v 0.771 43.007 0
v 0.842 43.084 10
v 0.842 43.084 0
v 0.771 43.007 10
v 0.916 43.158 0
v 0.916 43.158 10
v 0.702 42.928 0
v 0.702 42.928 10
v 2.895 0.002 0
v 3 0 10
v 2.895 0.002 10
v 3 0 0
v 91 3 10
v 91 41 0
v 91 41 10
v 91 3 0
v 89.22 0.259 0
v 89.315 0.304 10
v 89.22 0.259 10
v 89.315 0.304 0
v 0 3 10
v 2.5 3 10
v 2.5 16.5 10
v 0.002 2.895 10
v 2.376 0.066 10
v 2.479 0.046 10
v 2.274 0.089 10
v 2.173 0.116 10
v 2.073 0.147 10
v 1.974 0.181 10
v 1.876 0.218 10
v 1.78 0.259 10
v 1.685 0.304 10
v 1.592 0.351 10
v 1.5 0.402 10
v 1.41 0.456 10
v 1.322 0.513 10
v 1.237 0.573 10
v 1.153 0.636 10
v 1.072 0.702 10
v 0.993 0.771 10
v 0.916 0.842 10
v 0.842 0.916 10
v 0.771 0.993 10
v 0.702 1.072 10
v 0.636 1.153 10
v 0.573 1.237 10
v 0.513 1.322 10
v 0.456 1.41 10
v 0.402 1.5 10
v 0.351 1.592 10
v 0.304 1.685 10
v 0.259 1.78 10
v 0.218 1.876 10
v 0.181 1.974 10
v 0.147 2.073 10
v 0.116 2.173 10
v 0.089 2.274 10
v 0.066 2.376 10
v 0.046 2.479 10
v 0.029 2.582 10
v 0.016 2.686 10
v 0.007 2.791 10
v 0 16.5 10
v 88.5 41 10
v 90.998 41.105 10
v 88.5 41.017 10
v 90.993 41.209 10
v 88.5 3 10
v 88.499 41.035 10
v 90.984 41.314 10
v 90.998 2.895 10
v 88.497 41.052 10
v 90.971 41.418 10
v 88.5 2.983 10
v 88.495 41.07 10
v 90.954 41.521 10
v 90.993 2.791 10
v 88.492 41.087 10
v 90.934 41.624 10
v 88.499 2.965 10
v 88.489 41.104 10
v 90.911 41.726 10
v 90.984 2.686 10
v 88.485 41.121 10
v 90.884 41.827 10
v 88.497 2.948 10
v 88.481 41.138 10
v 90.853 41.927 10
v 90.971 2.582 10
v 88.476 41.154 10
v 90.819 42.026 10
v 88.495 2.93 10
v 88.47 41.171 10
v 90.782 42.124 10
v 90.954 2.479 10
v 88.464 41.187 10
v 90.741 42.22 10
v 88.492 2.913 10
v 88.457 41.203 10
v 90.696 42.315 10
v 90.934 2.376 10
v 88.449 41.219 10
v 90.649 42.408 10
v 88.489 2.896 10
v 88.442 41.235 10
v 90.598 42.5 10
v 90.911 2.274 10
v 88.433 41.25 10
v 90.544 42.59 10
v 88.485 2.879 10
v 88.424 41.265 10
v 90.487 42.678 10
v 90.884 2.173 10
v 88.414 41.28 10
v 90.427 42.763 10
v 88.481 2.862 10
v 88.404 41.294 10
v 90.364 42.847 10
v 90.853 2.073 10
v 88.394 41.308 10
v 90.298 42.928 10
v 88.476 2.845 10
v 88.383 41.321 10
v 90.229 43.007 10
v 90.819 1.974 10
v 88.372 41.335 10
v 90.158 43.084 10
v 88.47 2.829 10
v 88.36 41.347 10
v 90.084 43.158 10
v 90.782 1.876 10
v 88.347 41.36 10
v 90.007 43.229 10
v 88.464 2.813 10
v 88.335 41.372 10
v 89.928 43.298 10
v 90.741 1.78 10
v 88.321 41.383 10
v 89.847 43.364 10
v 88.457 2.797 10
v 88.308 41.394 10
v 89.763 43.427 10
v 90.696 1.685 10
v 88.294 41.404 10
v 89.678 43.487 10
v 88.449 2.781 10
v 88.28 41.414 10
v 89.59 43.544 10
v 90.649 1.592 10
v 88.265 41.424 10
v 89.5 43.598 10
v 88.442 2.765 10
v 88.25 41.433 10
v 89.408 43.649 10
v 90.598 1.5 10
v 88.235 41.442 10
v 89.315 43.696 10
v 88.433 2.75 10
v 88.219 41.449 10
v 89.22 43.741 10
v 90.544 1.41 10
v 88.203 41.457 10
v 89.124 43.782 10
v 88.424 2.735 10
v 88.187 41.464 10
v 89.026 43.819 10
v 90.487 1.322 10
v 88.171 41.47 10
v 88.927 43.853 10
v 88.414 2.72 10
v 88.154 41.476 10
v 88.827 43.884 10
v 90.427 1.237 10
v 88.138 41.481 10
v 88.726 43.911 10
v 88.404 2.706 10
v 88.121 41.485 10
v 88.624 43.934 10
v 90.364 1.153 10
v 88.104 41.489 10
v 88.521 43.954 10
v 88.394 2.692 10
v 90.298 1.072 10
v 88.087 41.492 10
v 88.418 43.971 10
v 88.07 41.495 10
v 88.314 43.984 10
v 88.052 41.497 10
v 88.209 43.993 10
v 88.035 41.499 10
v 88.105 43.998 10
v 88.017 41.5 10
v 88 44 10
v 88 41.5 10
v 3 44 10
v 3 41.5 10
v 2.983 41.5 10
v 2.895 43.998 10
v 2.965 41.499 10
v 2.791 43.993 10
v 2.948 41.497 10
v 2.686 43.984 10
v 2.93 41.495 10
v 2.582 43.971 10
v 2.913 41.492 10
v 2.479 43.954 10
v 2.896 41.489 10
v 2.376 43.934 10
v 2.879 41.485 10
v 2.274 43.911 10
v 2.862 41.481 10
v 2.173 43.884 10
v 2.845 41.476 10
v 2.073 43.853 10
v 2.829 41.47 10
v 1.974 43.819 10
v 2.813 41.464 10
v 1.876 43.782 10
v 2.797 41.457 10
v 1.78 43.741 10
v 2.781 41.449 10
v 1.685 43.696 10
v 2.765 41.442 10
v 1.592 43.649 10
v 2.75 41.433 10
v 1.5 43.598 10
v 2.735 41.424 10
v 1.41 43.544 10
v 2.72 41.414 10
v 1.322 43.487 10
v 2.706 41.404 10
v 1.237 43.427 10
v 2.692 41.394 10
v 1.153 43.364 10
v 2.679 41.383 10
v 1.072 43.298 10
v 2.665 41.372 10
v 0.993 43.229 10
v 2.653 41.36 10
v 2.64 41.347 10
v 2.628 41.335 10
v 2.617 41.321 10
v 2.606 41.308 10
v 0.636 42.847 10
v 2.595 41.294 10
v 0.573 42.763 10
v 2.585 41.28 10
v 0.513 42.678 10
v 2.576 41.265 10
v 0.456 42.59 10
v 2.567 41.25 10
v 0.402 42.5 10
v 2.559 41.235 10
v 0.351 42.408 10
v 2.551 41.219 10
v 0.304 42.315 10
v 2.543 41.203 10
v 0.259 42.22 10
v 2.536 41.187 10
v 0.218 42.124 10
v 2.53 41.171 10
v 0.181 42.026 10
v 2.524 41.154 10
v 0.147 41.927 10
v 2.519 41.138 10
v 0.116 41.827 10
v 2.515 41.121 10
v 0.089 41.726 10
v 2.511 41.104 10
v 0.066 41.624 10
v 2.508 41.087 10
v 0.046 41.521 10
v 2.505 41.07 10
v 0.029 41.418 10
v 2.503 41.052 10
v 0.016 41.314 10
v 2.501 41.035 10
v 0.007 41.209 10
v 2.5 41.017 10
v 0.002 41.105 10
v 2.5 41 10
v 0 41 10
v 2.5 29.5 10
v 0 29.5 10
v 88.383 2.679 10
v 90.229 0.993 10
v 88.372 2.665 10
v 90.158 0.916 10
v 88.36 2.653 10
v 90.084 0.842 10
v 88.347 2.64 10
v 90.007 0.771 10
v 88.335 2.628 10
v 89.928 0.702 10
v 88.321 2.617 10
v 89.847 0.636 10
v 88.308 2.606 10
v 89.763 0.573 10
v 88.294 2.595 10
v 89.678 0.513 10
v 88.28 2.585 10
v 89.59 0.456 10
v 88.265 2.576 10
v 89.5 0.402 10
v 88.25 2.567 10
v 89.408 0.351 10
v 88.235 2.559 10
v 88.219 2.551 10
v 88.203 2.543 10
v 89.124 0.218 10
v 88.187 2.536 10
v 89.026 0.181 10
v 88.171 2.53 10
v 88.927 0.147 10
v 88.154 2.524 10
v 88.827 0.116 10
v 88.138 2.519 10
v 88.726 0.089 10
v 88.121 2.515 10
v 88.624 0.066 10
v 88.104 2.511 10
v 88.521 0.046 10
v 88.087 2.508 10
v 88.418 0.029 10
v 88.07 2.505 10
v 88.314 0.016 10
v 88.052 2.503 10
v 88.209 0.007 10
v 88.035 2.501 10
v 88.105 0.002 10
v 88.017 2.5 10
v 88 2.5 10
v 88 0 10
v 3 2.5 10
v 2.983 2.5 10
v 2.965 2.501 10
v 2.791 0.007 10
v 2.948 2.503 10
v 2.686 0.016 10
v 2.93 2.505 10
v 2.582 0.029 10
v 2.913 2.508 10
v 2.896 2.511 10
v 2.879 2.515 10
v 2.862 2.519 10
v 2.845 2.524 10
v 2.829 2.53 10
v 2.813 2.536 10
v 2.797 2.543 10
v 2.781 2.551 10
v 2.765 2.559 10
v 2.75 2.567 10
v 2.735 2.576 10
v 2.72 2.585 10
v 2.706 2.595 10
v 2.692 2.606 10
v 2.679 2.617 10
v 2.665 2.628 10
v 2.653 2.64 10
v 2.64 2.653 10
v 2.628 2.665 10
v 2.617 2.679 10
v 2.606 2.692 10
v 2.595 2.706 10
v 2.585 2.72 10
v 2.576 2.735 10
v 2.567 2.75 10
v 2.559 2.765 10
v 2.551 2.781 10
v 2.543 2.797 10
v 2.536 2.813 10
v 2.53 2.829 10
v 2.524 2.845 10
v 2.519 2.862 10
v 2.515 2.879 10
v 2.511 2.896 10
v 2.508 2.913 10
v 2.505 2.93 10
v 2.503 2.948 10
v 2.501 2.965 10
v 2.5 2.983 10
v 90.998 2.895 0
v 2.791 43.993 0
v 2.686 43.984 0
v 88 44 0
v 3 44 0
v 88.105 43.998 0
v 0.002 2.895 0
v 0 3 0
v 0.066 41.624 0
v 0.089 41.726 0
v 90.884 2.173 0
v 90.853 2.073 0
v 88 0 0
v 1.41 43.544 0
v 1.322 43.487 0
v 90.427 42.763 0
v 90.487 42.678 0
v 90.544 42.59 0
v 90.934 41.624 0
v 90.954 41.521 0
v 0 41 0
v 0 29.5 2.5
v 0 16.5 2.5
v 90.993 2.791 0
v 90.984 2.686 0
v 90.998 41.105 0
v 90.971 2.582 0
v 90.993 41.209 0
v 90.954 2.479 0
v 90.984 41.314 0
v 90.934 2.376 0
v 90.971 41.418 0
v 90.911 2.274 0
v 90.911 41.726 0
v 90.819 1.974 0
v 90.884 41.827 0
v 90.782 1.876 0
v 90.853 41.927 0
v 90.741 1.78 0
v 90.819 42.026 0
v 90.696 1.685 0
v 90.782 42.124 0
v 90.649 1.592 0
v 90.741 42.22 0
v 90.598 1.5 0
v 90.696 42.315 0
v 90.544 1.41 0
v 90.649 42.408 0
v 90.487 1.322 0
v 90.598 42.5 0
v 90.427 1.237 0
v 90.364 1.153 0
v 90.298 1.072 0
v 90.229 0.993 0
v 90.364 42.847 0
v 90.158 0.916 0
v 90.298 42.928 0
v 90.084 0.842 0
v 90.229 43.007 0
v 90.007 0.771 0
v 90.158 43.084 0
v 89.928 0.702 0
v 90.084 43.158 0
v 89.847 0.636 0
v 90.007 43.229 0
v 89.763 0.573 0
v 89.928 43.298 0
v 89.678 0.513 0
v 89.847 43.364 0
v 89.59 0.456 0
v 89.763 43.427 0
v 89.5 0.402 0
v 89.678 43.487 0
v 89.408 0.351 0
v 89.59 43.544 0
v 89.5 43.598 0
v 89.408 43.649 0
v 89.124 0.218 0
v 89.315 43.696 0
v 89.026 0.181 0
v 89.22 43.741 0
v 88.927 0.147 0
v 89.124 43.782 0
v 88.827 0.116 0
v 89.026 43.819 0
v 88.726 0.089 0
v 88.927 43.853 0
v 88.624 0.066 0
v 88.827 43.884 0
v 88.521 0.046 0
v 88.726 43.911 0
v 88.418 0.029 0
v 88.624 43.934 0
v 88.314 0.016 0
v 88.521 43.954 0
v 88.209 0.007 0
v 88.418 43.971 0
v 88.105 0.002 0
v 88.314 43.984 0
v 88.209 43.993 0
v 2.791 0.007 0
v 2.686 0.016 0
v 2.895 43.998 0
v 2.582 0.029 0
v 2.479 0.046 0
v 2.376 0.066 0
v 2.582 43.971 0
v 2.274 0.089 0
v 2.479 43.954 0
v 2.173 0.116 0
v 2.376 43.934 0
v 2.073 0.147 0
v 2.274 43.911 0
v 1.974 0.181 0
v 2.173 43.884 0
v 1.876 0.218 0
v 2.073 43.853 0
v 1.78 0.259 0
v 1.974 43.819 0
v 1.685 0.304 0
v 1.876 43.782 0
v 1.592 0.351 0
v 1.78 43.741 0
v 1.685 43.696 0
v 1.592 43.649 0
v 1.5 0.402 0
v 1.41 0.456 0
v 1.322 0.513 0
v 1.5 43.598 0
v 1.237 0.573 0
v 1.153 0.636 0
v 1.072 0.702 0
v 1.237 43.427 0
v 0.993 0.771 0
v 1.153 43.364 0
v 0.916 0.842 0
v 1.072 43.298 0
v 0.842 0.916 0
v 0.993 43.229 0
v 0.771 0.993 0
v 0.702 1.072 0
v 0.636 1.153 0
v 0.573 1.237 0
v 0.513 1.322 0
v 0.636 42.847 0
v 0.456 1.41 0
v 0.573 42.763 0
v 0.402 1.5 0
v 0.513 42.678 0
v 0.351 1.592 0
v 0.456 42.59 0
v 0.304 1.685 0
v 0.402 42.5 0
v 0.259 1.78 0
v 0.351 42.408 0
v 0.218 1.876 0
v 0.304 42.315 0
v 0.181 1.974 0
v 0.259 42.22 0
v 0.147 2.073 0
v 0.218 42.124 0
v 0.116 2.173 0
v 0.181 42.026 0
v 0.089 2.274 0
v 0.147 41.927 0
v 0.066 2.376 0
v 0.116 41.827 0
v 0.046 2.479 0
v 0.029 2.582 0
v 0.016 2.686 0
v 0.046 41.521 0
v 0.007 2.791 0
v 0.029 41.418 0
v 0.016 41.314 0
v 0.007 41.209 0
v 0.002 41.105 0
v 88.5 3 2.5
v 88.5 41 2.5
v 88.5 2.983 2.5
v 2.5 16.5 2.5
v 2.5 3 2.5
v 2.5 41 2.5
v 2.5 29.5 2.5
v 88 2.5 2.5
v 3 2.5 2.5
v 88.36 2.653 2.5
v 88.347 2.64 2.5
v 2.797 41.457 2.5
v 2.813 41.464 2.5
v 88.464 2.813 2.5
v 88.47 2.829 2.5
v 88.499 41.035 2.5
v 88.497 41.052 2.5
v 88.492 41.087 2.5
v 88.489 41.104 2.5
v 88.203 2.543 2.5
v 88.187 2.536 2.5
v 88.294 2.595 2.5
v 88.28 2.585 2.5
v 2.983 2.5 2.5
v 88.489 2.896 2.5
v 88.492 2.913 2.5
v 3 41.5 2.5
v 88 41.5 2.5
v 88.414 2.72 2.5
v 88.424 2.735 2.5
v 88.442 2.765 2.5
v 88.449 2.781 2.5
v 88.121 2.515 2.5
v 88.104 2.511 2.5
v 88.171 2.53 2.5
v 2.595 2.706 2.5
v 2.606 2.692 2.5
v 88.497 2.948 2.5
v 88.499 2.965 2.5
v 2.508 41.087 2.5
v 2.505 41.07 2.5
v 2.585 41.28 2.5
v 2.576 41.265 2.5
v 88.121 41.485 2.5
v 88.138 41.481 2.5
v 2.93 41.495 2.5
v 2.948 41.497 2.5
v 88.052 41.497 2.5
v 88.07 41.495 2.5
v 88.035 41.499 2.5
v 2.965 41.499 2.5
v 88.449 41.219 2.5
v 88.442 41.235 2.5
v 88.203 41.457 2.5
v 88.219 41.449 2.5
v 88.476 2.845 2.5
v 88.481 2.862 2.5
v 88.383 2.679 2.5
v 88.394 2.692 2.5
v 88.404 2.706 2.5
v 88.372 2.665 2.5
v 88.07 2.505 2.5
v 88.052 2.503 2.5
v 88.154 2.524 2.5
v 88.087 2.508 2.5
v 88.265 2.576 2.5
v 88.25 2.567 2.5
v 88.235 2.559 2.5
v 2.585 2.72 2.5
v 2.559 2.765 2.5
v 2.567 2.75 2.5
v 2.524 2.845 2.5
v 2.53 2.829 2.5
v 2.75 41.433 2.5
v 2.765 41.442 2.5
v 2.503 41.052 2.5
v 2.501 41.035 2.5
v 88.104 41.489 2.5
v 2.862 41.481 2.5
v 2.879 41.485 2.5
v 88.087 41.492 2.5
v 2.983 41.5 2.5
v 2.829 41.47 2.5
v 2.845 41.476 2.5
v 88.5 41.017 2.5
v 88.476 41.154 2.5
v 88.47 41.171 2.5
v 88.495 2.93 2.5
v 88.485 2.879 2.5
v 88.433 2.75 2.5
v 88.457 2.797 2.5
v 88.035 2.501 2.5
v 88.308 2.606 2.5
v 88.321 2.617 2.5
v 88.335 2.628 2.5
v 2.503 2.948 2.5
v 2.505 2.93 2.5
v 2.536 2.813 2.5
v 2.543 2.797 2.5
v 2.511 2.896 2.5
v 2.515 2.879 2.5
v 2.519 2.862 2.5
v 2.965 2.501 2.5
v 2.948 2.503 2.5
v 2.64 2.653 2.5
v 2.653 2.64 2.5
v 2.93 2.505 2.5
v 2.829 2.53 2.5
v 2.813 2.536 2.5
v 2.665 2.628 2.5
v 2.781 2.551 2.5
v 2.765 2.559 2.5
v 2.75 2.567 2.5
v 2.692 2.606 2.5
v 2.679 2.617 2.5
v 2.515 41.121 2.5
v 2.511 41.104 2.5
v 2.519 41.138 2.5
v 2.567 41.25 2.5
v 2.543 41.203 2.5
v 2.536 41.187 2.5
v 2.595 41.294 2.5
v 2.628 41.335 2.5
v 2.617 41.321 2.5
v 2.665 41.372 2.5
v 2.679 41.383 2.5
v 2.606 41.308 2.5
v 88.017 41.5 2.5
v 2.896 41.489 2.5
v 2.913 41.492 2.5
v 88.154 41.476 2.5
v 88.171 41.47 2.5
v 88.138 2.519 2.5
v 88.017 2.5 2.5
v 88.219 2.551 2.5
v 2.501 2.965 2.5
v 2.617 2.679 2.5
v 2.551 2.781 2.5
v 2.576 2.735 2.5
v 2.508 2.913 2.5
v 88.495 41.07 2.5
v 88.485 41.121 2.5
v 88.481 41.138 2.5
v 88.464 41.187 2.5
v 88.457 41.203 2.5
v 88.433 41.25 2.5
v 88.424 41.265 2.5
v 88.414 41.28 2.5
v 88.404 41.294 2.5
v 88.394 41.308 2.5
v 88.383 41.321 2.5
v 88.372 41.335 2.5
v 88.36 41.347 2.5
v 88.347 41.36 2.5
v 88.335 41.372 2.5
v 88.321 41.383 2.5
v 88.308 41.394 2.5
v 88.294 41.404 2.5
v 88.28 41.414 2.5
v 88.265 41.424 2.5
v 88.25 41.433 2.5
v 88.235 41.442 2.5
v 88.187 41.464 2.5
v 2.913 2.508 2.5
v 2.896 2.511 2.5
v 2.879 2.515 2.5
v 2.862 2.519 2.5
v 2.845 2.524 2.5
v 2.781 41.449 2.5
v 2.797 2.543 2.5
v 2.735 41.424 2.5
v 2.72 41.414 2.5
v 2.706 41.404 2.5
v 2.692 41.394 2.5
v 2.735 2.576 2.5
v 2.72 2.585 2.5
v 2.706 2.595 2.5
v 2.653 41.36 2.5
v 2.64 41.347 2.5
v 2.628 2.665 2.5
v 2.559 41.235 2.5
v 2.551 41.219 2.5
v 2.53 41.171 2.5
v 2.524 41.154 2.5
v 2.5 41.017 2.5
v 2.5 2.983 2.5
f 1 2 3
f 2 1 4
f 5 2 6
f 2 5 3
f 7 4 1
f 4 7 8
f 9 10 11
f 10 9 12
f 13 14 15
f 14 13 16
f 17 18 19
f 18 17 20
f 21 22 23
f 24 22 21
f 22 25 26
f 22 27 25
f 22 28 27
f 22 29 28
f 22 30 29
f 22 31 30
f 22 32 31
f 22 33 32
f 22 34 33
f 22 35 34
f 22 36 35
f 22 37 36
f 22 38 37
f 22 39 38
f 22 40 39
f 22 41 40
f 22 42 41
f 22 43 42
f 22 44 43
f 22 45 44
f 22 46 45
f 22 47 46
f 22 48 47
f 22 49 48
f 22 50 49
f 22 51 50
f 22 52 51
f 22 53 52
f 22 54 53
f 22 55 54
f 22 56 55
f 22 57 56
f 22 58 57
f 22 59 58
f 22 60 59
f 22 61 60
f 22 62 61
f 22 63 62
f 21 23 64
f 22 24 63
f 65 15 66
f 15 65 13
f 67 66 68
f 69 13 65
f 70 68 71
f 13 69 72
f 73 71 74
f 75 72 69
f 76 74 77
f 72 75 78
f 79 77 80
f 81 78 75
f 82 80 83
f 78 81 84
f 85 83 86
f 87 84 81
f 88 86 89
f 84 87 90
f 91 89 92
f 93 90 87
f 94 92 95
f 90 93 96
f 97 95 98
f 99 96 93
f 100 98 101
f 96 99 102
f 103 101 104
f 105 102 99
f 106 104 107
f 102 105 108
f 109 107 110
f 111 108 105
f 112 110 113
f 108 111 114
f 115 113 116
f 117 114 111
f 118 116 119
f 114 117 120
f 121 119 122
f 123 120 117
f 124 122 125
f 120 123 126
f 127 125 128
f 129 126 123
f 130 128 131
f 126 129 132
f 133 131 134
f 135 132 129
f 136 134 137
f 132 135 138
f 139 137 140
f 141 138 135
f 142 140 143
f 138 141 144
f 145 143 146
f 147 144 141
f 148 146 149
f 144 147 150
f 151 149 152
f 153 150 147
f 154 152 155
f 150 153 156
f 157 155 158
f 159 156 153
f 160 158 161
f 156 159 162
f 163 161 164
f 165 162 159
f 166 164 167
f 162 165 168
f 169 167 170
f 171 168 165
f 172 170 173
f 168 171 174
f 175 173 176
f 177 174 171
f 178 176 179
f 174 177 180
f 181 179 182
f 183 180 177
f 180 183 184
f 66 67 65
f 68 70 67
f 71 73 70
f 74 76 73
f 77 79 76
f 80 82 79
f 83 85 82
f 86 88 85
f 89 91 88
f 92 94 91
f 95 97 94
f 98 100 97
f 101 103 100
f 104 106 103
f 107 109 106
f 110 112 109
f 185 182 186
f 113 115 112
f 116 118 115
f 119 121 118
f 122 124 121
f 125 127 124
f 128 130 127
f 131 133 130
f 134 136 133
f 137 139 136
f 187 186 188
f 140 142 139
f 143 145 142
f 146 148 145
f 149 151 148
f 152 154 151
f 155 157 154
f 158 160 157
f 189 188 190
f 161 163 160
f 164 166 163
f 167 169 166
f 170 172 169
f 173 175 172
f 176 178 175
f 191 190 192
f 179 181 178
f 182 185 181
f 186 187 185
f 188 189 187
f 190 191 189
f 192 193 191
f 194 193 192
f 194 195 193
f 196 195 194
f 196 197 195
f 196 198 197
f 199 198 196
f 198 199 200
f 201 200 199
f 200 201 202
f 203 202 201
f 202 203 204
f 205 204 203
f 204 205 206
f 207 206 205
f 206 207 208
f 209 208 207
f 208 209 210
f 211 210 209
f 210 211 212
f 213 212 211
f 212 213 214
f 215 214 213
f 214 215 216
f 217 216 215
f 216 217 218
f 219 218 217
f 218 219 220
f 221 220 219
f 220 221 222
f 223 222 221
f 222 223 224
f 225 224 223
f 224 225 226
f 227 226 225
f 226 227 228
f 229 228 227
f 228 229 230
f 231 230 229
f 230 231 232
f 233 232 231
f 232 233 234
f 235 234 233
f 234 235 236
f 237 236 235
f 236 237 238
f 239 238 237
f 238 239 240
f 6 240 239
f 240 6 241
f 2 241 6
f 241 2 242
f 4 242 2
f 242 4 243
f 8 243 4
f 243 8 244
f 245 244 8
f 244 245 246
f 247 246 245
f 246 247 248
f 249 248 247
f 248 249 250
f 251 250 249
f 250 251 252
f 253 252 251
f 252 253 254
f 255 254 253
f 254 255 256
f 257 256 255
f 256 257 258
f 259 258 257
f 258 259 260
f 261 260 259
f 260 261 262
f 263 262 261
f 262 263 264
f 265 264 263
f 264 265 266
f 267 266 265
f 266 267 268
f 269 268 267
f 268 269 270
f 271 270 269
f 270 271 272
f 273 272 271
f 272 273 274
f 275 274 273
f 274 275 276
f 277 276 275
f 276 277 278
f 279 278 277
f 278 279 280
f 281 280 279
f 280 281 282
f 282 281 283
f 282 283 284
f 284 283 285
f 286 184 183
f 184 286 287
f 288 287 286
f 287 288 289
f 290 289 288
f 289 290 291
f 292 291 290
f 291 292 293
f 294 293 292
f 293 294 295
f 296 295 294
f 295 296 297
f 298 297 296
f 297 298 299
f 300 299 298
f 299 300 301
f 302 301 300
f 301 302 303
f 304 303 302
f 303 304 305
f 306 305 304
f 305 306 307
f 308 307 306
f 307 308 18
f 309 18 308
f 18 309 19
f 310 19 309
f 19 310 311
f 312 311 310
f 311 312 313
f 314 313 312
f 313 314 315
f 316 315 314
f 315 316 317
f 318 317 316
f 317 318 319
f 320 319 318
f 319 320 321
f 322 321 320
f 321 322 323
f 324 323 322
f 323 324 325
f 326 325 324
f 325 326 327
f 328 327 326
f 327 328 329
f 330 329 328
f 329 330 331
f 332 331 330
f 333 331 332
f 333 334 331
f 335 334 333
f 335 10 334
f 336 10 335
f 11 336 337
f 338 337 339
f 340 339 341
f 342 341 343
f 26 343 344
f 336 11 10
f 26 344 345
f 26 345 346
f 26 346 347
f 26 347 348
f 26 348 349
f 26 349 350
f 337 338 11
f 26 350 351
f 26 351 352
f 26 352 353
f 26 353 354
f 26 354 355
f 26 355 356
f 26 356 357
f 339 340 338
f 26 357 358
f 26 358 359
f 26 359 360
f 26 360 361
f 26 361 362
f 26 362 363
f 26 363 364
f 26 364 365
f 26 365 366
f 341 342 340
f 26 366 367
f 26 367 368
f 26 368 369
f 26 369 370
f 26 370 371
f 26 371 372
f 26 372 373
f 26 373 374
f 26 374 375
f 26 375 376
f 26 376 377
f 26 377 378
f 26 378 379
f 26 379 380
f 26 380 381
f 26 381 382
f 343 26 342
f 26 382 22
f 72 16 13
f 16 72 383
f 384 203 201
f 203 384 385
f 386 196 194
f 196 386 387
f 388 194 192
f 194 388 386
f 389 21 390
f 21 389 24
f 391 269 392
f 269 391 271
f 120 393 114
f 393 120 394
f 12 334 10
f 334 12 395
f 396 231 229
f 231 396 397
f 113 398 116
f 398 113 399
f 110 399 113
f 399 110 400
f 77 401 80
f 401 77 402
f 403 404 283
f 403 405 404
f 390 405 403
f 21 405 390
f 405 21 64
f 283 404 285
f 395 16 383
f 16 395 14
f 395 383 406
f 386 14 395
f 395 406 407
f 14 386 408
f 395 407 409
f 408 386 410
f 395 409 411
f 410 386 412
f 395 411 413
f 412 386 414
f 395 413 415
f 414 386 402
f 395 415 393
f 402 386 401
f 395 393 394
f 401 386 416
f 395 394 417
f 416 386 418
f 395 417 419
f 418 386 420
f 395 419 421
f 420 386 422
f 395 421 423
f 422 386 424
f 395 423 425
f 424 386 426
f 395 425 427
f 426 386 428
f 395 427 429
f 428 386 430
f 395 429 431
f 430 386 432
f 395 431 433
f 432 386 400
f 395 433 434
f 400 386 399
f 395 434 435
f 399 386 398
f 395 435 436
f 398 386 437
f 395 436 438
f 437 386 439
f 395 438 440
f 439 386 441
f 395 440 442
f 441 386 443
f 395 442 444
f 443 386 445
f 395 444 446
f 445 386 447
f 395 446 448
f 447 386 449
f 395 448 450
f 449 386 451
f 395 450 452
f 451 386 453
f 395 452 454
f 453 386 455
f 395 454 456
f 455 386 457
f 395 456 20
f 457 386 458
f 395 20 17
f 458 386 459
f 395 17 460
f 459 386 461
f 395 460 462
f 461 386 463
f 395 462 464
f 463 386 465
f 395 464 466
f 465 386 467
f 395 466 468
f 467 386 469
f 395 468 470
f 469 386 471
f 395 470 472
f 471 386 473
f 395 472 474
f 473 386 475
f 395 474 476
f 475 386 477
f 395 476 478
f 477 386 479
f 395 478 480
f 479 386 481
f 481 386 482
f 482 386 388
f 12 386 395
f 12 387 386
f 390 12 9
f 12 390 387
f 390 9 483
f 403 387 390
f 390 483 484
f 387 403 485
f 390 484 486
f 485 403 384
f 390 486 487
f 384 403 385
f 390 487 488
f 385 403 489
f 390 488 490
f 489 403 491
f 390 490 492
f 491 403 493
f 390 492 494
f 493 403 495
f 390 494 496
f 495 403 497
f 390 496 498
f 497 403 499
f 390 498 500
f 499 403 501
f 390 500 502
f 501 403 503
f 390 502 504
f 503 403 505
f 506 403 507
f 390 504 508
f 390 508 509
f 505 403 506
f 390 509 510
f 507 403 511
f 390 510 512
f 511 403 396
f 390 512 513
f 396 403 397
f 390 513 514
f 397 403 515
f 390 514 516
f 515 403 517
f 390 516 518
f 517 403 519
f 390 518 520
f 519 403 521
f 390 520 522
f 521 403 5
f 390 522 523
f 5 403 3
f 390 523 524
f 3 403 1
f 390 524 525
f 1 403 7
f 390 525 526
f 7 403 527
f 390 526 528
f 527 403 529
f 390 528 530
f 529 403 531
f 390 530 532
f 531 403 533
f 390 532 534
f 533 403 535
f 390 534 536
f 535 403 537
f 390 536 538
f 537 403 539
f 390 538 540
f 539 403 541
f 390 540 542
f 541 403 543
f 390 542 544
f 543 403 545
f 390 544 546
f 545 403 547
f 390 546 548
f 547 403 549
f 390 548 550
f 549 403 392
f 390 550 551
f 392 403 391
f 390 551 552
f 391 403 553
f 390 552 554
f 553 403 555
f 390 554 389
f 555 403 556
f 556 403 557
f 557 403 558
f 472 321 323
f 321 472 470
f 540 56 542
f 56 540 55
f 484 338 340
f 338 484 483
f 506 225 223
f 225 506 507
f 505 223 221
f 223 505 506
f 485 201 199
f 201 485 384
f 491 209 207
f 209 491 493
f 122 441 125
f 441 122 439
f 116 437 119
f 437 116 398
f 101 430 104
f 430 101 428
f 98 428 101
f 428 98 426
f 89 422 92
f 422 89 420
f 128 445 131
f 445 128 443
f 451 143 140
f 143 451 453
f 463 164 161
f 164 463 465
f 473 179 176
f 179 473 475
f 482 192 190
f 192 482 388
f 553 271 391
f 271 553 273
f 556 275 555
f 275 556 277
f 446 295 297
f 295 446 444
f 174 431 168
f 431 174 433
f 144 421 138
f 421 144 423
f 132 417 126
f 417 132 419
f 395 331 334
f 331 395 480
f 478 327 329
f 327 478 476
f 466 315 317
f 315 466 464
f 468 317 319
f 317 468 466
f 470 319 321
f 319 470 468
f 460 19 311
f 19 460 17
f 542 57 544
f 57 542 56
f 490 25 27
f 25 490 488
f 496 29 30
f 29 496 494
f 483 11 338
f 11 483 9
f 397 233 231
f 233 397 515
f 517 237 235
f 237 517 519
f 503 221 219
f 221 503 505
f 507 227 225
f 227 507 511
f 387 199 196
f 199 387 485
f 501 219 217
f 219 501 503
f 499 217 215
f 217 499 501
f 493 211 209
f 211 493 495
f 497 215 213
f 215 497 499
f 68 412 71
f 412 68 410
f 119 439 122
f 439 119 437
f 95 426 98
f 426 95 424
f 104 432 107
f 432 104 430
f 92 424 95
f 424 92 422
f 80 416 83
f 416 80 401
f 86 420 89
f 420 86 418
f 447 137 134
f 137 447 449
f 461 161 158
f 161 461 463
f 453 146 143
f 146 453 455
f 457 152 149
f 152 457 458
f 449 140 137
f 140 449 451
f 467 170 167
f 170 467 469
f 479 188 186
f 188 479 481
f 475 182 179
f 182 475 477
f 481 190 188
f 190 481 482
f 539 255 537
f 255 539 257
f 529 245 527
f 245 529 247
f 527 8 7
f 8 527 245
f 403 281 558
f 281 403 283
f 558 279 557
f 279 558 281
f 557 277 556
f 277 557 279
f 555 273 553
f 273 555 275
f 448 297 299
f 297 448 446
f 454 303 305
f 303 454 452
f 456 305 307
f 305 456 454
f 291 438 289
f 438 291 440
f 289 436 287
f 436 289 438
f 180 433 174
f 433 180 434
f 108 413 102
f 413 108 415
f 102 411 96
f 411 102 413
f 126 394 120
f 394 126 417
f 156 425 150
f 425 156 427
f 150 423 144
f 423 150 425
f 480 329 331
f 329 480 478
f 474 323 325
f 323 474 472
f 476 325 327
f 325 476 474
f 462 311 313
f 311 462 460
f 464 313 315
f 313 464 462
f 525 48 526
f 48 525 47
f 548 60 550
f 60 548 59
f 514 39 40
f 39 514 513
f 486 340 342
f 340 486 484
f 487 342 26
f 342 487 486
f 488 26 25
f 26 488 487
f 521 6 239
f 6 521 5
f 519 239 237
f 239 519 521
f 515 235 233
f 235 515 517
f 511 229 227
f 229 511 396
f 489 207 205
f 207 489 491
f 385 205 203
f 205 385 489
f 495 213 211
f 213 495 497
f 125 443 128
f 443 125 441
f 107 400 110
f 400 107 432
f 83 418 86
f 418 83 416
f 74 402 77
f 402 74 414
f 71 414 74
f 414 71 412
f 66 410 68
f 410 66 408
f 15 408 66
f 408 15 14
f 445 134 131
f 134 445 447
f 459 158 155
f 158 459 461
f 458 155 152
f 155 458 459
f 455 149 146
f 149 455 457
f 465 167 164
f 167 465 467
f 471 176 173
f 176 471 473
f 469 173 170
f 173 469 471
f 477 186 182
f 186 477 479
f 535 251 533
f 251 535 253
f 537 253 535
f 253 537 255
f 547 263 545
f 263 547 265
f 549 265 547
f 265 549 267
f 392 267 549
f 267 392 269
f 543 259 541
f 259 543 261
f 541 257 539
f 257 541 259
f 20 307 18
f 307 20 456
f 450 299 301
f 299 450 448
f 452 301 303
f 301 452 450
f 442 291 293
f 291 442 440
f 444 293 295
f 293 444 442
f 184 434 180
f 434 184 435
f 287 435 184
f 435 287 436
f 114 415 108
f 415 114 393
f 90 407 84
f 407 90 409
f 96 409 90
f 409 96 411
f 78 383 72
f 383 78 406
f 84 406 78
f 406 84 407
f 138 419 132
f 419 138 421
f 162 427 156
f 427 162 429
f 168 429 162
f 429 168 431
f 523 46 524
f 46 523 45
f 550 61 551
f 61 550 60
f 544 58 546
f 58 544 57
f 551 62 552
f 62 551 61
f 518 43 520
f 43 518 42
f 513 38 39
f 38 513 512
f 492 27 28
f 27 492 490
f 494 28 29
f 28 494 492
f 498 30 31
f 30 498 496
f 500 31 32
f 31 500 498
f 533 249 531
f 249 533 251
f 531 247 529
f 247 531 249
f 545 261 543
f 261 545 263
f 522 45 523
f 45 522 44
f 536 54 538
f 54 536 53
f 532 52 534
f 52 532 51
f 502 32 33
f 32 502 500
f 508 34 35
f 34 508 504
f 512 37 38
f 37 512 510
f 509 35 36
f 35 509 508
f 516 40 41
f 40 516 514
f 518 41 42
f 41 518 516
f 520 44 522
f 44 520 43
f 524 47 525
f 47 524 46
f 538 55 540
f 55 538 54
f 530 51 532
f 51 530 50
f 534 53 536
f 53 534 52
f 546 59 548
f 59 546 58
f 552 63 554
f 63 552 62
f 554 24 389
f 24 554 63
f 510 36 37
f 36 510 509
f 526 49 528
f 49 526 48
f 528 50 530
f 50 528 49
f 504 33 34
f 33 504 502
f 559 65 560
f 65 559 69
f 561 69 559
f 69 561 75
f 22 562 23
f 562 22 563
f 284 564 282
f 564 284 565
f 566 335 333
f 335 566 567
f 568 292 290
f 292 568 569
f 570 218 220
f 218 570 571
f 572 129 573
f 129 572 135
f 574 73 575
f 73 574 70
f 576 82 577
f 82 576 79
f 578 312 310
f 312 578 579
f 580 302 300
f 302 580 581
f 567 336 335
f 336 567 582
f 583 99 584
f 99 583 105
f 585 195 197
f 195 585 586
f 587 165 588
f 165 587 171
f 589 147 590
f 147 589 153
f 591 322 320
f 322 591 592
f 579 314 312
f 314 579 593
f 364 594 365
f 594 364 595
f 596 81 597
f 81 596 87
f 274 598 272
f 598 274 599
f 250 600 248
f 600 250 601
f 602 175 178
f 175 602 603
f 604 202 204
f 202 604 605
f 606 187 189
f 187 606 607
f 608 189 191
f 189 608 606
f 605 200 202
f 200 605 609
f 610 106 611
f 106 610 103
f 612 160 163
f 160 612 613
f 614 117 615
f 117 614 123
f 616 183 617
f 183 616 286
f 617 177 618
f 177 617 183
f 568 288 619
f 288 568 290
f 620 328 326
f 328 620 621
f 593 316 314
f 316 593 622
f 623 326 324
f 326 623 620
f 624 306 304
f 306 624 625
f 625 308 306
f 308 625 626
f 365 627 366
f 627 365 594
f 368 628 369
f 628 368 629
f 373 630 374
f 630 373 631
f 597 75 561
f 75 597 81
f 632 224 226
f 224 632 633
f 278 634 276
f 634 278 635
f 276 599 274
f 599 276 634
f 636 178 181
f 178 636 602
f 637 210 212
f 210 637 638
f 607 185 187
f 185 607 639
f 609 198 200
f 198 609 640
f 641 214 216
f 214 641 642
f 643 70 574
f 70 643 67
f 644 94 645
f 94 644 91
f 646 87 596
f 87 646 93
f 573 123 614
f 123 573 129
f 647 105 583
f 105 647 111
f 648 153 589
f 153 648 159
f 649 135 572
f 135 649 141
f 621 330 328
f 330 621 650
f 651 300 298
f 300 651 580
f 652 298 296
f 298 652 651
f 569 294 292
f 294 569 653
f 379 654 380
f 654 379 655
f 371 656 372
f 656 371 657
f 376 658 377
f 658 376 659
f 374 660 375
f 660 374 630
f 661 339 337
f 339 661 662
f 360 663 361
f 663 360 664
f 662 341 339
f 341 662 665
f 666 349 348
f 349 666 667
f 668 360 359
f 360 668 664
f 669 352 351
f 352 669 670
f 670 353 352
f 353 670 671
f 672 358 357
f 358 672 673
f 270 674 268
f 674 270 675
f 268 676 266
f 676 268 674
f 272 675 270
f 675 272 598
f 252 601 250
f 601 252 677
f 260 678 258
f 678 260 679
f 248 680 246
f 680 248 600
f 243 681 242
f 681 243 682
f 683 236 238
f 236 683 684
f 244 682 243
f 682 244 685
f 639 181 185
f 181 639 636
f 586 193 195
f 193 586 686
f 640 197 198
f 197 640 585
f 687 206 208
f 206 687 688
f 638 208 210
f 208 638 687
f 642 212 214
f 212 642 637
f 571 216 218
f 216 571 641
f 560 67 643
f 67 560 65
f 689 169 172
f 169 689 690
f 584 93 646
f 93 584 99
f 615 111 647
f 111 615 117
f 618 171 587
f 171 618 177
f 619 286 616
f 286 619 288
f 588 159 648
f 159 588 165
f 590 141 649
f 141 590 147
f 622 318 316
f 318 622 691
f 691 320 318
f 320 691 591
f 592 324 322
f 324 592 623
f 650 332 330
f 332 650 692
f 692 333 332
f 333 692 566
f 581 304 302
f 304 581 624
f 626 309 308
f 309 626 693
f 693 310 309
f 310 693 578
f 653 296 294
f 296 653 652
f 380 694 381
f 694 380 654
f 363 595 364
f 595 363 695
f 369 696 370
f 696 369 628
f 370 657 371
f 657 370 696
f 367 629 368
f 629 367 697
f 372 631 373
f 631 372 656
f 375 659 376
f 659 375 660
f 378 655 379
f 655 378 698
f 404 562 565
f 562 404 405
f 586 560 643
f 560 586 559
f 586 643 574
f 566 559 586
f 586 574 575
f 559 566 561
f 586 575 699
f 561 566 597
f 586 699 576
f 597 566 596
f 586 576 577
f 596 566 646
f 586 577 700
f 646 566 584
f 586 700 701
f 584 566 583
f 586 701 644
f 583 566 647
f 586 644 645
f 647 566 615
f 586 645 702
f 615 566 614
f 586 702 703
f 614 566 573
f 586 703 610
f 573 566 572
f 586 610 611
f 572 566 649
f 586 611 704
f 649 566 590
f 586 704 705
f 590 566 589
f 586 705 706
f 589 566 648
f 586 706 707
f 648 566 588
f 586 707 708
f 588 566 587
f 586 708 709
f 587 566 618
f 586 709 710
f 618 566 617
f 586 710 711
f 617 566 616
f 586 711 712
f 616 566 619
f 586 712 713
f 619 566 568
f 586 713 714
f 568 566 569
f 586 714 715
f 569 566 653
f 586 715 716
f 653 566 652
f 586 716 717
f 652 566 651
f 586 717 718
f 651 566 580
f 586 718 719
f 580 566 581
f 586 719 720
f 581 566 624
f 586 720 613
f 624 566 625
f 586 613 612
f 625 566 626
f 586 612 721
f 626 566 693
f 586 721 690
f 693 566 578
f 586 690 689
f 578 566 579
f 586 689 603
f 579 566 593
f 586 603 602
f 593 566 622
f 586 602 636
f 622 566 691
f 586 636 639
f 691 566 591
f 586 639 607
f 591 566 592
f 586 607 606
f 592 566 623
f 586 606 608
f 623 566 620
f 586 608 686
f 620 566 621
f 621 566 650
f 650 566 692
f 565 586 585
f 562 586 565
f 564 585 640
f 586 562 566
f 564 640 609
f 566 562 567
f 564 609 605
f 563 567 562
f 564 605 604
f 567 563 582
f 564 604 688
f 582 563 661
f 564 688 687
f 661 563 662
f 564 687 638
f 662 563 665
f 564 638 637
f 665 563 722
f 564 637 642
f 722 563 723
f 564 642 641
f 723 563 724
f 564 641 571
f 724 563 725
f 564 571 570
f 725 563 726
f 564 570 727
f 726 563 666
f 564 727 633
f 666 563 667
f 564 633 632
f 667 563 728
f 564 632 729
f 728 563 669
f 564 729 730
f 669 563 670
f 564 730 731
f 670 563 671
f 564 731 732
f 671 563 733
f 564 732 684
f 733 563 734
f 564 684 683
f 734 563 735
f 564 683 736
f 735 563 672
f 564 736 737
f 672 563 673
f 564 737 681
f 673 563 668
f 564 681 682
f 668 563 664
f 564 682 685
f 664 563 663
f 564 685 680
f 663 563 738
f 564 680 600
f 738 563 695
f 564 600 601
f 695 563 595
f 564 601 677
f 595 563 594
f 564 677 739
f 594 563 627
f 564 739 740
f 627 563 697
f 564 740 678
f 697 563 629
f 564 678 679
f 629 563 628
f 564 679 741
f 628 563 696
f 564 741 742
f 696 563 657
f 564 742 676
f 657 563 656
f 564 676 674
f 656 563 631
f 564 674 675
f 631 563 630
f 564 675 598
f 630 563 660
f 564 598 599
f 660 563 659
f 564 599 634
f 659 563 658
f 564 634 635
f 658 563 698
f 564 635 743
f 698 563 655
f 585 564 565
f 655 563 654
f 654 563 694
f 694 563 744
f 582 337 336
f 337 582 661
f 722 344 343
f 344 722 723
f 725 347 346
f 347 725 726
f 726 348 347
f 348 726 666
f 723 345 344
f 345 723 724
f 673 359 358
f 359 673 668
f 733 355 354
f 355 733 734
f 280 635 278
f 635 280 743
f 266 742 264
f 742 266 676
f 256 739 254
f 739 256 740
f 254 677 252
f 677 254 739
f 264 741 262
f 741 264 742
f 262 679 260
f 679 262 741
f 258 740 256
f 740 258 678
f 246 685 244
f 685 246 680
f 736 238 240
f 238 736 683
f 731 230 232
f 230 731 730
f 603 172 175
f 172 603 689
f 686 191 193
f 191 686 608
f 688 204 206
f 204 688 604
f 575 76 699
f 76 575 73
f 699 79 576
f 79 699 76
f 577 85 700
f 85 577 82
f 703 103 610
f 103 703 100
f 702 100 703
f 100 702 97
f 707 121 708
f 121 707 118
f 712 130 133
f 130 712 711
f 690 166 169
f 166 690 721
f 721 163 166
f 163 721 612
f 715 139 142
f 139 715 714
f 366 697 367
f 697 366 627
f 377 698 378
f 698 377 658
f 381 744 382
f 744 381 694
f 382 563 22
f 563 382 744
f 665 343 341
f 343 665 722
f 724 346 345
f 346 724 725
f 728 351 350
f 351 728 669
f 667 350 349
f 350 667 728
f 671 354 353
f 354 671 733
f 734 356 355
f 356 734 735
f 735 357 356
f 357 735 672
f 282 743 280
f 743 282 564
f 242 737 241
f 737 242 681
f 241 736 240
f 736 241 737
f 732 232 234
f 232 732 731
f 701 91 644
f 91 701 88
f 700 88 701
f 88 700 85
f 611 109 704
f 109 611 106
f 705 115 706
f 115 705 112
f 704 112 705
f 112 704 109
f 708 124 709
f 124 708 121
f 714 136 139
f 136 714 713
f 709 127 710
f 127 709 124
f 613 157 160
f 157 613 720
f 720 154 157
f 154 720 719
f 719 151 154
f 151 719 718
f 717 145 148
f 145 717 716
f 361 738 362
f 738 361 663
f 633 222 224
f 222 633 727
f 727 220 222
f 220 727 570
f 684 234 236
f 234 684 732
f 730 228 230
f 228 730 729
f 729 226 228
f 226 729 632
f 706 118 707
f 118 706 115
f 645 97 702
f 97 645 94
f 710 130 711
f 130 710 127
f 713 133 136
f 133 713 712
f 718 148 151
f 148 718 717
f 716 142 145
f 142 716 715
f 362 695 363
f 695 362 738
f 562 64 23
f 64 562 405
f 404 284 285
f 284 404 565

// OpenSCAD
                                                                                                                   // Customizeable rounder box with cover.
// See customizer documentation here http://customizer.makerbot.com/docs

// TODO: clean formatting.
// TODO: handle gracefully inconsistnet parameters. Now can result zero material.


/* [Global] */

// All dimensions are in mm.
// 1 for base only, 2 for cover only, 3 for both.
//part_selector = 1;  // [1:Base,2:Cover,3:Both]
// External length of the base and cover.
external_length = 91;
// External width of the base and cover.
external_width = 44;
// Height of the box without the cover.
base_height = 10;
// Thickness of the open box's walls.
wall_thickness = 2.5;
// Thickness of the bottom.
bottom_thickness = 2.5;
// Radius of the external corners.
external_corner_radius = 3;

cut_width = 13;
// From center line.
cut_center_offset = 1;

//// The external (visible) height of the cover.
//cover_external_height = 5;
//// The internal (invisible) height of the cover.
//cover_internal_height = 10;
//// The real thickness of the cover.
//cover_thickness = 2;
//// Clearance between the box walls and the cover.
//cover_internal_margin = 0.5;
//// The thickiness of the internal walls of the cover.
//cover_wall_thickness = 2;
//// Cover printing offset (when printing both cover and cover)
//cover_printing_y_offset = 10;

/* [Hidden] */

$fn = 180;
eps = 0.001;
eps2 = 2*eps;

base_internal_corner_radius = max(eps, external_corner_radius-wall_thickness);
//cover_internal_corner_radius1 = max(eps, base_internal_corner_radius - cover_internal_margin);
//cover_internal_corner_radius2 = max(eps, cover_internal_corner_radius1 - cover_wall_thickness);
//
//// Move cover when printing both.
//cover_y = (part_selector == 3) ? (external_width + cover_printing_y_offset) : 0;

module rounded_solid_box(xlen, ylen, zlen, r) {
  translate([r, r, 0]) minkowski() {
    cube([xlen-2*r, ylen-2*r, zlen/2]);
    cylinder(r=r, h=zlen/2);
 }
}

module cut() {
  y_offest = external_width/2 +cut_center_offset - cut_width/2;
  translate([-eps, y_offest, bottom_thickness])
    cube([wall_thickness+eps2, cut_width, base_height]); 
}

module main() {
  difference() {
    rounded_solid_box(external_length, external_width, base_height, external_corner_radius);

    translate([wall_thickness, wall_thickness, bottom_thickness]) 
      rounded_solid_box(
          external_length-2*wall_thickness, 
          external_width-2*wall_thickness, 
          base_height, 
          base_internal_corner_radius);
    cut();
  }
}

//module cover() {
//  difference() {
//    union() {
//      translate([0, cover_y, 0])
//      rounded_solid_box(external_length, external_width, cover_external_height, external_corner_radius);
//   
//      translate([
//        wall_thickness + cover_internal_margin,
//        cover_y + wall_thickness + cover_internal_margin,
//        cover_external_height
//      ])
//        rounded_solid_box(
//          external_length - 2*(wall_thickness + cover_internal_margin) , 
//          external_width - 2*(wall_thickness + cover_internal_margin), 
//          cover_internal_height + eps, cover_internal_corner_radius1);
//    }
//      translate([
//          wall_thickness + cover_internal_margin + cover_wall_thickness,
//          cover_y + wall_thickness + cover_internal_margin + cover_wall_thickness,
//        cover_thickness - eps])
//        rounded_solid_box(
//            external_length - 2*(wall_thickness + cover_internal_margin + cover_wall_thickness), 
//            external_width - 2*(wall_thickness + cover_internal_margin+cover_wall_thickness), 
//            cover_external_height + cover_internal_height, cover_internal_corner_radius2);
//
//    //translate([6, cover_y + 26, 7]) rotate([0, 180, 0]) scale([1.3, 1.3, 3]) import("/Users/tal/Downloads/_prusa/rina_text.stl", convexity=3);
//  }
//
//}

//if (part_selector == 1 || part_selector == 3) {
main();

//cut();
//} 
//
//if (part_selector == 2 || part_selector == 3) {
//  cover();
//} 

//translate([16, 31, 7]) rotate([0, 180, 0]) scale([1.3, 1.3, 3]) import("/Users/tal/Downloads/_prusa/rina_text.stl", convexity=3);
